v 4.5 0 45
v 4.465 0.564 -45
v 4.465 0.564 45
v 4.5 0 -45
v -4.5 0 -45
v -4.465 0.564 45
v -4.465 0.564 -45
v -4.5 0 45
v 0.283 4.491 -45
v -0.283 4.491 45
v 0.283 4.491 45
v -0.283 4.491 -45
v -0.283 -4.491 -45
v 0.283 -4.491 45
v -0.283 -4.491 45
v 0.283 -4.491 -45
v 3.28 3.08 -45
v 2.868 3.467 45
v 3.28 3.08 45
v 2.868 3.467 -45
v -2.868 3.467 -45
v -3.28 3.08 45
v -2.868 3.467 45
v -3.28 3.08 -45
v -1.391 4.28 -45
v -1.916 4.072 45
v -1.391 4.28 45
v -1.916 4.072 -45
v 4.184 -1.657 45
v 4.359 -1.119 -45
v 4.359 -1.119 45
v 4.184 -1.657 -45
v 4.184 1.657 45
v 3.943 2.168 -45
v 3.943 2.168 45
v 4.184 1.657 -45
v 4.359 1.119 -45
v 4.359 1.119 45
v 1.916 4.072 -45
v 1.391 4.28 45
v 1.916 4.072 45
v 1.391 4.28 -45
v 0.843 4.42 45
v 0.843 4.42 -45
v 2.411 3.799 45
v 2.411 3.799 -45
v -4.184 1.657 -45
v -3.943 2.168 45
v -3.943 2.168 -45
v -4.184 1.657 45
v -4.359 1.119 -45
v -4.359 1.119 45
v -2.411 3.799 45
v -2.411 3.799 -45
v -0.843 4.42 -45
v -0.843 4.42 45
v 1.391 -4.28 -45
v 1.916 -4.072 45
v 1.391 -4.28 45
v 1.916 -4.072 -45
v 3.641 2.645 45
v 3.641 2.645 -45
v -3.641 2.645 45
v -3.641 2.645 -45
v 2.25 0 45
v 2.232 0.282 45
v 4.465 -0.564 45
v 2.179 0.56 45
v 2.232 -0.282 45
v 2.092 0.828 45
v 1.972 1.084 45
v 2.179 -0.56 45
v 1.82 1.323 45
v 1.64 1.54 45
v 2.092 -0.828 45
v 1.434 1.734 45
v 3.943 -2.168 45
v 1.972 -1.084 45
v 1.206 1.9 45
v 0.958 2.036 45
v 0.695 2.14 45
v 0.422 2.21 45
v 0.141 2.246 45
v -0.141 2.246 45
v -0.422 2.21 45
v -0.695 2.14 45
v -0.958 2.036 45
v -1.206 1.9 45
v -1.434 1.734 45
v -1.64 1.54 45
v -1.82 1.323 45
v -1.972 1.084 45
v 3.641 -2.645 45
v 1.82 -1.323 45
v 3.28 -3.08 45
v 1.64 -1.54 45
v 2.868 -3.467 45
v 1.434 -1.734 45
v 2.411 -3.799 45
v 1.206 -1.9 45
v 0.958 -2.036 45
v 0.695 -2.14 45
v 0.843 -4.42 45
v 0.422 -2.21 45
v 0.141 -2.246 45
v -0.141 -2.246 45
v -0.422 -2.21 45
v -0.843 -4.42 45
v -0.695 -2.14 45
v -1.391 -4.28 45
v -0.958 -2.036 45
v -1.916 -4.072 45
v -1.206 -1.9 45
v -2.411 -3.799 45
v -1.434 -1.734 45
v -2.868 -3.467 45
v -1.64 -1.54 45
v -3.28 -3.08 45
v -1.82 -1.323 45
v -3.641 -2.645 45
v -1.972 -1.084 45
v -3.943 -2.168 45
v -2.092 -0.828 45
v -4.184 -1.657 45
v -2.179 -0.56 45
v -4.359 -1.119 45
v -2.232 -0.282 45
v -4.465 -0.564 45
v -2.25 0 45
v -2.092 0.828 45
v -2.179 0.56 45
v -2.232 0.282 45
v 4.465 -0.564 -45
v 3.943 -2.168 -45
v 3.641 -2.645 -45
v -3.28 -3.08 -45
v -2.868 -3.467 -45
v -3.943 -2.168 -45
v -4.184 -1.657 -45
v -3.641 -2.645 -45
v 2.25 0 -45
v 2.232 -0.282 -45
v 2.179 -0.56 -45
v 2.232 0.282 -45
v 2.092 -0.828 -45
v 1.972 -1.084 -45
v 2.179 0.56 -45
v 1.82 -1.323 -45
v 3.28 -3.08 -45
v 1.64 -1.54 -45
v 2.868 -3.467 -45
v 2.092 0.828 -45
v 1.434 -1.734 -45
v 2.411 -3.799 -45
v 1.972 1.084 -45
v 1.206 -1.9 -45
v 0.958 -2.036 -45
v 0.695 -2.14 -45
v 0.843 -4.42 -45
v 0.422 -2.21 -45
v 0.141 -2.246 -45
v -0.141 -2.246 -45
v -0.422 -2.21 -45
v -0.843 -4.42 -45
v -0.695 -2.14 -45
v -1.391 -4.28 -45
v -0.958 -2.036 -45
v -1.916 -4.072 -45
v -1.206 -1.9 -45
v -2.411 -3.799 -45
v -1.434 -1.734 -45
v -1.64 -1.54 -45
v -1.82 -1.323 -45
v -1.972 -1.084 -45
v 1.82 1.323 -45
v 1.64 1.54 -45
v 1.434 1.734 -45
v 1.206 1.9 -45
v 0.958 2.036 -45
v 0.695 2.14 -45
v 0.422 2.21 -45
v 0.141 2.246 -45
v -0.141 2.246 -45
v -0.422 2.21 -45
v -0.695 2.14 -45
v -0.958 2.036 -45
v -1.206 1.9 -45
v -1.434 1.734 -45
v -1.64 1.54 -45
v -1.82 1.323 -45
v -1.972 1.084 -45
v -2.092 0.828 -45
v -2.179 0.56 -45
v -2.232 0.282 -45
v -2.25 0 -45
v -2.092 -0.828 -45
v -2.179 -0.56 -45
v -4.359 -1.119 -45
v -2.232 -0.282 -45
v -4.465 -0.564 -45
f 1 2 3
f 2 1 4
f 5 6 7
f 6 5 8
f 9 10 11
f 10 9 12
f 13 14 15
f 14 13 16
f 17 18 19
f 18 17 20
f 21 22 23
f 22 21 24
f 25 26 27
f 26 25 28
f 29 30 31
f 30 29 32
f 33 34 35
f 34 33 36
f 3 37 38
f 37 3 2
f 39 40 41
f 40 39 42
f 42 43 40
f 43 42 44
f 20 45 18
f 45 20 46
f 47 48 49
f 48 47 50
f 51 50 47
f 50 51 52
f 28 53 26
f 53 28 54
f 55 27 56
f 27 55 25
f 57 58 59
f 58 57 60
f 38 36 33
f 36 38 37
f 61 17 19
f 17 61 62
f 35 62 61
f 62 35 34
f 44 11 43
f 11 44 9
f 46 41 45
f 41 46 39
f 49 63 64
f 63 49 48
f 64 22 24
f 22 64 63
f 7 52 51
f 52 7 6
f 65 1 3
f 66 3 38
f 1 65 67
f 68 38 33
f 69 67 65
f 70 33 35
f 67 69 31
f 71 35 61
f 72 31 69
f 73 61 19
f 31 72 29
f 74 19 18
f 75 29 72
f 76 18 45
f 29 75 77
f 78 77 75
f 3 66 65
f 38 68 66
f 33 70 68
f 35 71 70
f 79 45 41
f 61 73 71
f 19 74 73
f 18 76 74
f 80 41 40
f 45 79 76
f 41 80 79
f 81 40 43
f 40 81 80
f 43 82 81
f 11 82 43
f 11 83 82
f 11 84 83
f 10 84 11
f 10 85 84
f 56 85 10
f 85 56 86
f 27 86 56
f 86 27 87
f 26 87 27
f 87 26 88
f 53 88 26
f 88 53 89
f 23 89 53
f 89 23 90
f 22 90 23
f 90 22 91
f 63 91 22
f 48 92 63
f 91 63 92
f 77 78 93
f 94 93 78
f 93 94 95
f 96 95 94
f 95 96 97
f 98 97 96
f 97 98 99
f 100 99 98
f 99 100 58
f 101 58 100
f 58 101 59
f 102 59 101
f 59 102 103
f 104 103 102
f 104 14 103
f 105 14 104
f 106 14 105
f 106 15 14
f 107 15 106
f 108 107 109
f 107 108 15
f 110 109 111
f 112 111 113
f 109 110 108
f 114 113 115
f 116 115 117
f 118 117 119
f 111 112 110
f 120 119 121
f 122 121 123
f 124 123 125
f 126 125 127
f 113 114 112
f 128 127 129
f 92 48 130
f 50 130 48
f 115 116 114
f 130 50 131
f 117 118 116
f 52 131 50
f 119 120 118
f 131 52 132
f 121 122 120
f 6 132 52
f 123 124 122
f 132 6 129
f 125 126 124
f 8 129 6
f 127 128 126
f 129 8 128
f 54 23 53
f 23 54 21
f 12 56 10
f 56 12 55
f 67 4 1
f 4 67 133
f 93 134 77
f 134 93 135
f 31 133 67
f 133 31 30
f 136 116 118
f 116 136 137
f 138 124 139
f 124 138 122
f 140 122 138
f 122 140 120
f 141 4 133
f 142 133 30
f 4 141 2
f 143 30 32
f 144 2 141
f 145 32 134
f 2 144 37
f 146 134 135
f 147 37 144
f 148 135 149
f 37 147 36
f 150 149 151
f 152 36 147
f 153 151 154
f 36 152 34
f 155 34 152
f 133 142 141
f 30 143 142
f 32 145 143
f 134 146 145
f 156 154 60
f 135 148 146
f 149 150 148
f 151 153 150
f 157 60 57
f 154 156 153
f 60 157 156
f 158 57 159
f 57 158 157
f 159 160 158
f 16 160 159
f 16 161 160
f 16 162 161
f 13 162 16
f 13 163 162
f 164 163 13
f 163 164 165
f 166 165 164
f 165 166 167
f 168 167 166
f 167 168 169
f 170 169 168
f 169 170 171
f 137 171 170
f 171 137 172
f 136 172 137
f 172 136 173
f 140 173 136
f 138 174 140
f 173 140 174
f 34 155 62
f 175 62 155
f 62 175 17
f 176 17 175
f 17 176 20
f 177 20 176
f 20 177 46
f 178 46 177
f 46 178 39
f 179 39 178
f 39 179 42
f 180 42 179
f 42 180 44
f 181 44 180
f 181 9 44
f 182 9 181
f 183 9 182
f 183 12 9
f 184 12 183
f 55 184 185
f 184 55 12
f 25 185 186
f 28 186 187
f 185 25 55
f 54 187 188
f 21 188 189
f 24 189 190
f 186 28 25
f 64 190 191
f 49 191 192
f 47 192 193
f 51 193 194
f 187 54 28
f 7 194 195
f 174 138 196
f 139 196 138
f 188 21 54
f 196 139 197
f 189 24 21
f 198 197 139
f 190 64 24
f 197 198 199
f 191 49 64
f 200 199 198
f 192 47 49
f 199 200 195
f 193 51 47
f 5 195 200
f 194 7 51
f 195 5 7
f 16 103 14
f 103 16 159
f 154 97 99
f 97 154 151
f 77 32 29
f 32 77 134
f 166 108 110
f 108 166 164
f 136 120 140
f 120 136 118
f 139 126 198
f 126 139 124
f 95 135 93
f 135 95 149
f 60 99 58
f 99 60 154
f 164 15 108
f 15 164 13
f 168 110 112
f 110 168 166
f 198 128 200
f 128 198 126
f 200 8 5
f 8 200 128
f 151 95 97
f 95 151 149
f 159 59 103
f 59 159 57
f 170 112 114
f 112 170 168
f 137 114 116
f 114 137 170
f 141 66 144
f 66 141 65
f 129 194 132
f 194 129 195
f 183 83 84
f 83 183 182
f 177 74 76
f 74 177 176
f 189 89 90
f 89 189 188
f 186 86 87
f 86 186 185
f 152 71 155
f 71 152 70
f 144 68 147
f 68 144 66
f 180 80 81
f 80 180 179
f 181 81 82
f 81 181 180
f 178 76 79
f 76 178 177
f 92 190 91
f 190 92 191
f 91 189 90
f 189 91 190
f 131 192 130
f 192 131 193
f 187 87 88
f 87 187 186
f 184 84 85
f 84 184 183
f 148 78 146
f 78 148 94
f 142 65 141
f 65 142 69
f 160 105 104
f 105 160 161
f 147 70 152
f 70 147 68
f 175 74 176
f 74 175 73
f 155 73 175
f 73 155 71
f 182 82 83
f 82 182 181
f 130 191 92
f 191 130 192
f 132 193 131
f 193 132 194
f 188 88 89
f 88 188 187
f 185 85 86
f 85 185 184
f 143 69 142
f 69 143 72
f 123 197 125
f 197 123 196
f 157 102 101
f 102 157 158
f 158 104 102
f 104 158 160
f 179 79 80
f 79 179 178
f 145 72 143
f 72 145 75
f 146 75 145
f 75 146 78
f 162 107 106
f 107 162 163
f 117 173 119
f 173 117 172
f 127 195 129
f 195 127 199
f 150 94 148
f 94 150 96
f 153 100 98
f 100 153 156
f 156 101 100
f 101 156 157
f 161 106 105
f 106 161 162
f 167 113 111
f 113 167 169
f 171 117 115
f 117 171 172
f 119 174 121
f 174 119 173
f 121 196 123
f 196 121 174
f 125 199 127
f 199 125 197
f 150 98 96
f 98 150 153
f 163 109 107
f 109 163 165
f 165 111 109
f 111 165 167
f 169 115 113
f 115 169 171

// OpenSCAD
$fn = 50;


difference() {
	union() {
		translate(v = [0, 0, -45.0000000000]) {
			cylinder(h = 90, r = 4.5000000000);
		}
	}
	union() {
		translate(v = [0, 0, -100.0000000000]) {
			cylinder(h = 200, r = 2.2500000000);
		}
	}
}
